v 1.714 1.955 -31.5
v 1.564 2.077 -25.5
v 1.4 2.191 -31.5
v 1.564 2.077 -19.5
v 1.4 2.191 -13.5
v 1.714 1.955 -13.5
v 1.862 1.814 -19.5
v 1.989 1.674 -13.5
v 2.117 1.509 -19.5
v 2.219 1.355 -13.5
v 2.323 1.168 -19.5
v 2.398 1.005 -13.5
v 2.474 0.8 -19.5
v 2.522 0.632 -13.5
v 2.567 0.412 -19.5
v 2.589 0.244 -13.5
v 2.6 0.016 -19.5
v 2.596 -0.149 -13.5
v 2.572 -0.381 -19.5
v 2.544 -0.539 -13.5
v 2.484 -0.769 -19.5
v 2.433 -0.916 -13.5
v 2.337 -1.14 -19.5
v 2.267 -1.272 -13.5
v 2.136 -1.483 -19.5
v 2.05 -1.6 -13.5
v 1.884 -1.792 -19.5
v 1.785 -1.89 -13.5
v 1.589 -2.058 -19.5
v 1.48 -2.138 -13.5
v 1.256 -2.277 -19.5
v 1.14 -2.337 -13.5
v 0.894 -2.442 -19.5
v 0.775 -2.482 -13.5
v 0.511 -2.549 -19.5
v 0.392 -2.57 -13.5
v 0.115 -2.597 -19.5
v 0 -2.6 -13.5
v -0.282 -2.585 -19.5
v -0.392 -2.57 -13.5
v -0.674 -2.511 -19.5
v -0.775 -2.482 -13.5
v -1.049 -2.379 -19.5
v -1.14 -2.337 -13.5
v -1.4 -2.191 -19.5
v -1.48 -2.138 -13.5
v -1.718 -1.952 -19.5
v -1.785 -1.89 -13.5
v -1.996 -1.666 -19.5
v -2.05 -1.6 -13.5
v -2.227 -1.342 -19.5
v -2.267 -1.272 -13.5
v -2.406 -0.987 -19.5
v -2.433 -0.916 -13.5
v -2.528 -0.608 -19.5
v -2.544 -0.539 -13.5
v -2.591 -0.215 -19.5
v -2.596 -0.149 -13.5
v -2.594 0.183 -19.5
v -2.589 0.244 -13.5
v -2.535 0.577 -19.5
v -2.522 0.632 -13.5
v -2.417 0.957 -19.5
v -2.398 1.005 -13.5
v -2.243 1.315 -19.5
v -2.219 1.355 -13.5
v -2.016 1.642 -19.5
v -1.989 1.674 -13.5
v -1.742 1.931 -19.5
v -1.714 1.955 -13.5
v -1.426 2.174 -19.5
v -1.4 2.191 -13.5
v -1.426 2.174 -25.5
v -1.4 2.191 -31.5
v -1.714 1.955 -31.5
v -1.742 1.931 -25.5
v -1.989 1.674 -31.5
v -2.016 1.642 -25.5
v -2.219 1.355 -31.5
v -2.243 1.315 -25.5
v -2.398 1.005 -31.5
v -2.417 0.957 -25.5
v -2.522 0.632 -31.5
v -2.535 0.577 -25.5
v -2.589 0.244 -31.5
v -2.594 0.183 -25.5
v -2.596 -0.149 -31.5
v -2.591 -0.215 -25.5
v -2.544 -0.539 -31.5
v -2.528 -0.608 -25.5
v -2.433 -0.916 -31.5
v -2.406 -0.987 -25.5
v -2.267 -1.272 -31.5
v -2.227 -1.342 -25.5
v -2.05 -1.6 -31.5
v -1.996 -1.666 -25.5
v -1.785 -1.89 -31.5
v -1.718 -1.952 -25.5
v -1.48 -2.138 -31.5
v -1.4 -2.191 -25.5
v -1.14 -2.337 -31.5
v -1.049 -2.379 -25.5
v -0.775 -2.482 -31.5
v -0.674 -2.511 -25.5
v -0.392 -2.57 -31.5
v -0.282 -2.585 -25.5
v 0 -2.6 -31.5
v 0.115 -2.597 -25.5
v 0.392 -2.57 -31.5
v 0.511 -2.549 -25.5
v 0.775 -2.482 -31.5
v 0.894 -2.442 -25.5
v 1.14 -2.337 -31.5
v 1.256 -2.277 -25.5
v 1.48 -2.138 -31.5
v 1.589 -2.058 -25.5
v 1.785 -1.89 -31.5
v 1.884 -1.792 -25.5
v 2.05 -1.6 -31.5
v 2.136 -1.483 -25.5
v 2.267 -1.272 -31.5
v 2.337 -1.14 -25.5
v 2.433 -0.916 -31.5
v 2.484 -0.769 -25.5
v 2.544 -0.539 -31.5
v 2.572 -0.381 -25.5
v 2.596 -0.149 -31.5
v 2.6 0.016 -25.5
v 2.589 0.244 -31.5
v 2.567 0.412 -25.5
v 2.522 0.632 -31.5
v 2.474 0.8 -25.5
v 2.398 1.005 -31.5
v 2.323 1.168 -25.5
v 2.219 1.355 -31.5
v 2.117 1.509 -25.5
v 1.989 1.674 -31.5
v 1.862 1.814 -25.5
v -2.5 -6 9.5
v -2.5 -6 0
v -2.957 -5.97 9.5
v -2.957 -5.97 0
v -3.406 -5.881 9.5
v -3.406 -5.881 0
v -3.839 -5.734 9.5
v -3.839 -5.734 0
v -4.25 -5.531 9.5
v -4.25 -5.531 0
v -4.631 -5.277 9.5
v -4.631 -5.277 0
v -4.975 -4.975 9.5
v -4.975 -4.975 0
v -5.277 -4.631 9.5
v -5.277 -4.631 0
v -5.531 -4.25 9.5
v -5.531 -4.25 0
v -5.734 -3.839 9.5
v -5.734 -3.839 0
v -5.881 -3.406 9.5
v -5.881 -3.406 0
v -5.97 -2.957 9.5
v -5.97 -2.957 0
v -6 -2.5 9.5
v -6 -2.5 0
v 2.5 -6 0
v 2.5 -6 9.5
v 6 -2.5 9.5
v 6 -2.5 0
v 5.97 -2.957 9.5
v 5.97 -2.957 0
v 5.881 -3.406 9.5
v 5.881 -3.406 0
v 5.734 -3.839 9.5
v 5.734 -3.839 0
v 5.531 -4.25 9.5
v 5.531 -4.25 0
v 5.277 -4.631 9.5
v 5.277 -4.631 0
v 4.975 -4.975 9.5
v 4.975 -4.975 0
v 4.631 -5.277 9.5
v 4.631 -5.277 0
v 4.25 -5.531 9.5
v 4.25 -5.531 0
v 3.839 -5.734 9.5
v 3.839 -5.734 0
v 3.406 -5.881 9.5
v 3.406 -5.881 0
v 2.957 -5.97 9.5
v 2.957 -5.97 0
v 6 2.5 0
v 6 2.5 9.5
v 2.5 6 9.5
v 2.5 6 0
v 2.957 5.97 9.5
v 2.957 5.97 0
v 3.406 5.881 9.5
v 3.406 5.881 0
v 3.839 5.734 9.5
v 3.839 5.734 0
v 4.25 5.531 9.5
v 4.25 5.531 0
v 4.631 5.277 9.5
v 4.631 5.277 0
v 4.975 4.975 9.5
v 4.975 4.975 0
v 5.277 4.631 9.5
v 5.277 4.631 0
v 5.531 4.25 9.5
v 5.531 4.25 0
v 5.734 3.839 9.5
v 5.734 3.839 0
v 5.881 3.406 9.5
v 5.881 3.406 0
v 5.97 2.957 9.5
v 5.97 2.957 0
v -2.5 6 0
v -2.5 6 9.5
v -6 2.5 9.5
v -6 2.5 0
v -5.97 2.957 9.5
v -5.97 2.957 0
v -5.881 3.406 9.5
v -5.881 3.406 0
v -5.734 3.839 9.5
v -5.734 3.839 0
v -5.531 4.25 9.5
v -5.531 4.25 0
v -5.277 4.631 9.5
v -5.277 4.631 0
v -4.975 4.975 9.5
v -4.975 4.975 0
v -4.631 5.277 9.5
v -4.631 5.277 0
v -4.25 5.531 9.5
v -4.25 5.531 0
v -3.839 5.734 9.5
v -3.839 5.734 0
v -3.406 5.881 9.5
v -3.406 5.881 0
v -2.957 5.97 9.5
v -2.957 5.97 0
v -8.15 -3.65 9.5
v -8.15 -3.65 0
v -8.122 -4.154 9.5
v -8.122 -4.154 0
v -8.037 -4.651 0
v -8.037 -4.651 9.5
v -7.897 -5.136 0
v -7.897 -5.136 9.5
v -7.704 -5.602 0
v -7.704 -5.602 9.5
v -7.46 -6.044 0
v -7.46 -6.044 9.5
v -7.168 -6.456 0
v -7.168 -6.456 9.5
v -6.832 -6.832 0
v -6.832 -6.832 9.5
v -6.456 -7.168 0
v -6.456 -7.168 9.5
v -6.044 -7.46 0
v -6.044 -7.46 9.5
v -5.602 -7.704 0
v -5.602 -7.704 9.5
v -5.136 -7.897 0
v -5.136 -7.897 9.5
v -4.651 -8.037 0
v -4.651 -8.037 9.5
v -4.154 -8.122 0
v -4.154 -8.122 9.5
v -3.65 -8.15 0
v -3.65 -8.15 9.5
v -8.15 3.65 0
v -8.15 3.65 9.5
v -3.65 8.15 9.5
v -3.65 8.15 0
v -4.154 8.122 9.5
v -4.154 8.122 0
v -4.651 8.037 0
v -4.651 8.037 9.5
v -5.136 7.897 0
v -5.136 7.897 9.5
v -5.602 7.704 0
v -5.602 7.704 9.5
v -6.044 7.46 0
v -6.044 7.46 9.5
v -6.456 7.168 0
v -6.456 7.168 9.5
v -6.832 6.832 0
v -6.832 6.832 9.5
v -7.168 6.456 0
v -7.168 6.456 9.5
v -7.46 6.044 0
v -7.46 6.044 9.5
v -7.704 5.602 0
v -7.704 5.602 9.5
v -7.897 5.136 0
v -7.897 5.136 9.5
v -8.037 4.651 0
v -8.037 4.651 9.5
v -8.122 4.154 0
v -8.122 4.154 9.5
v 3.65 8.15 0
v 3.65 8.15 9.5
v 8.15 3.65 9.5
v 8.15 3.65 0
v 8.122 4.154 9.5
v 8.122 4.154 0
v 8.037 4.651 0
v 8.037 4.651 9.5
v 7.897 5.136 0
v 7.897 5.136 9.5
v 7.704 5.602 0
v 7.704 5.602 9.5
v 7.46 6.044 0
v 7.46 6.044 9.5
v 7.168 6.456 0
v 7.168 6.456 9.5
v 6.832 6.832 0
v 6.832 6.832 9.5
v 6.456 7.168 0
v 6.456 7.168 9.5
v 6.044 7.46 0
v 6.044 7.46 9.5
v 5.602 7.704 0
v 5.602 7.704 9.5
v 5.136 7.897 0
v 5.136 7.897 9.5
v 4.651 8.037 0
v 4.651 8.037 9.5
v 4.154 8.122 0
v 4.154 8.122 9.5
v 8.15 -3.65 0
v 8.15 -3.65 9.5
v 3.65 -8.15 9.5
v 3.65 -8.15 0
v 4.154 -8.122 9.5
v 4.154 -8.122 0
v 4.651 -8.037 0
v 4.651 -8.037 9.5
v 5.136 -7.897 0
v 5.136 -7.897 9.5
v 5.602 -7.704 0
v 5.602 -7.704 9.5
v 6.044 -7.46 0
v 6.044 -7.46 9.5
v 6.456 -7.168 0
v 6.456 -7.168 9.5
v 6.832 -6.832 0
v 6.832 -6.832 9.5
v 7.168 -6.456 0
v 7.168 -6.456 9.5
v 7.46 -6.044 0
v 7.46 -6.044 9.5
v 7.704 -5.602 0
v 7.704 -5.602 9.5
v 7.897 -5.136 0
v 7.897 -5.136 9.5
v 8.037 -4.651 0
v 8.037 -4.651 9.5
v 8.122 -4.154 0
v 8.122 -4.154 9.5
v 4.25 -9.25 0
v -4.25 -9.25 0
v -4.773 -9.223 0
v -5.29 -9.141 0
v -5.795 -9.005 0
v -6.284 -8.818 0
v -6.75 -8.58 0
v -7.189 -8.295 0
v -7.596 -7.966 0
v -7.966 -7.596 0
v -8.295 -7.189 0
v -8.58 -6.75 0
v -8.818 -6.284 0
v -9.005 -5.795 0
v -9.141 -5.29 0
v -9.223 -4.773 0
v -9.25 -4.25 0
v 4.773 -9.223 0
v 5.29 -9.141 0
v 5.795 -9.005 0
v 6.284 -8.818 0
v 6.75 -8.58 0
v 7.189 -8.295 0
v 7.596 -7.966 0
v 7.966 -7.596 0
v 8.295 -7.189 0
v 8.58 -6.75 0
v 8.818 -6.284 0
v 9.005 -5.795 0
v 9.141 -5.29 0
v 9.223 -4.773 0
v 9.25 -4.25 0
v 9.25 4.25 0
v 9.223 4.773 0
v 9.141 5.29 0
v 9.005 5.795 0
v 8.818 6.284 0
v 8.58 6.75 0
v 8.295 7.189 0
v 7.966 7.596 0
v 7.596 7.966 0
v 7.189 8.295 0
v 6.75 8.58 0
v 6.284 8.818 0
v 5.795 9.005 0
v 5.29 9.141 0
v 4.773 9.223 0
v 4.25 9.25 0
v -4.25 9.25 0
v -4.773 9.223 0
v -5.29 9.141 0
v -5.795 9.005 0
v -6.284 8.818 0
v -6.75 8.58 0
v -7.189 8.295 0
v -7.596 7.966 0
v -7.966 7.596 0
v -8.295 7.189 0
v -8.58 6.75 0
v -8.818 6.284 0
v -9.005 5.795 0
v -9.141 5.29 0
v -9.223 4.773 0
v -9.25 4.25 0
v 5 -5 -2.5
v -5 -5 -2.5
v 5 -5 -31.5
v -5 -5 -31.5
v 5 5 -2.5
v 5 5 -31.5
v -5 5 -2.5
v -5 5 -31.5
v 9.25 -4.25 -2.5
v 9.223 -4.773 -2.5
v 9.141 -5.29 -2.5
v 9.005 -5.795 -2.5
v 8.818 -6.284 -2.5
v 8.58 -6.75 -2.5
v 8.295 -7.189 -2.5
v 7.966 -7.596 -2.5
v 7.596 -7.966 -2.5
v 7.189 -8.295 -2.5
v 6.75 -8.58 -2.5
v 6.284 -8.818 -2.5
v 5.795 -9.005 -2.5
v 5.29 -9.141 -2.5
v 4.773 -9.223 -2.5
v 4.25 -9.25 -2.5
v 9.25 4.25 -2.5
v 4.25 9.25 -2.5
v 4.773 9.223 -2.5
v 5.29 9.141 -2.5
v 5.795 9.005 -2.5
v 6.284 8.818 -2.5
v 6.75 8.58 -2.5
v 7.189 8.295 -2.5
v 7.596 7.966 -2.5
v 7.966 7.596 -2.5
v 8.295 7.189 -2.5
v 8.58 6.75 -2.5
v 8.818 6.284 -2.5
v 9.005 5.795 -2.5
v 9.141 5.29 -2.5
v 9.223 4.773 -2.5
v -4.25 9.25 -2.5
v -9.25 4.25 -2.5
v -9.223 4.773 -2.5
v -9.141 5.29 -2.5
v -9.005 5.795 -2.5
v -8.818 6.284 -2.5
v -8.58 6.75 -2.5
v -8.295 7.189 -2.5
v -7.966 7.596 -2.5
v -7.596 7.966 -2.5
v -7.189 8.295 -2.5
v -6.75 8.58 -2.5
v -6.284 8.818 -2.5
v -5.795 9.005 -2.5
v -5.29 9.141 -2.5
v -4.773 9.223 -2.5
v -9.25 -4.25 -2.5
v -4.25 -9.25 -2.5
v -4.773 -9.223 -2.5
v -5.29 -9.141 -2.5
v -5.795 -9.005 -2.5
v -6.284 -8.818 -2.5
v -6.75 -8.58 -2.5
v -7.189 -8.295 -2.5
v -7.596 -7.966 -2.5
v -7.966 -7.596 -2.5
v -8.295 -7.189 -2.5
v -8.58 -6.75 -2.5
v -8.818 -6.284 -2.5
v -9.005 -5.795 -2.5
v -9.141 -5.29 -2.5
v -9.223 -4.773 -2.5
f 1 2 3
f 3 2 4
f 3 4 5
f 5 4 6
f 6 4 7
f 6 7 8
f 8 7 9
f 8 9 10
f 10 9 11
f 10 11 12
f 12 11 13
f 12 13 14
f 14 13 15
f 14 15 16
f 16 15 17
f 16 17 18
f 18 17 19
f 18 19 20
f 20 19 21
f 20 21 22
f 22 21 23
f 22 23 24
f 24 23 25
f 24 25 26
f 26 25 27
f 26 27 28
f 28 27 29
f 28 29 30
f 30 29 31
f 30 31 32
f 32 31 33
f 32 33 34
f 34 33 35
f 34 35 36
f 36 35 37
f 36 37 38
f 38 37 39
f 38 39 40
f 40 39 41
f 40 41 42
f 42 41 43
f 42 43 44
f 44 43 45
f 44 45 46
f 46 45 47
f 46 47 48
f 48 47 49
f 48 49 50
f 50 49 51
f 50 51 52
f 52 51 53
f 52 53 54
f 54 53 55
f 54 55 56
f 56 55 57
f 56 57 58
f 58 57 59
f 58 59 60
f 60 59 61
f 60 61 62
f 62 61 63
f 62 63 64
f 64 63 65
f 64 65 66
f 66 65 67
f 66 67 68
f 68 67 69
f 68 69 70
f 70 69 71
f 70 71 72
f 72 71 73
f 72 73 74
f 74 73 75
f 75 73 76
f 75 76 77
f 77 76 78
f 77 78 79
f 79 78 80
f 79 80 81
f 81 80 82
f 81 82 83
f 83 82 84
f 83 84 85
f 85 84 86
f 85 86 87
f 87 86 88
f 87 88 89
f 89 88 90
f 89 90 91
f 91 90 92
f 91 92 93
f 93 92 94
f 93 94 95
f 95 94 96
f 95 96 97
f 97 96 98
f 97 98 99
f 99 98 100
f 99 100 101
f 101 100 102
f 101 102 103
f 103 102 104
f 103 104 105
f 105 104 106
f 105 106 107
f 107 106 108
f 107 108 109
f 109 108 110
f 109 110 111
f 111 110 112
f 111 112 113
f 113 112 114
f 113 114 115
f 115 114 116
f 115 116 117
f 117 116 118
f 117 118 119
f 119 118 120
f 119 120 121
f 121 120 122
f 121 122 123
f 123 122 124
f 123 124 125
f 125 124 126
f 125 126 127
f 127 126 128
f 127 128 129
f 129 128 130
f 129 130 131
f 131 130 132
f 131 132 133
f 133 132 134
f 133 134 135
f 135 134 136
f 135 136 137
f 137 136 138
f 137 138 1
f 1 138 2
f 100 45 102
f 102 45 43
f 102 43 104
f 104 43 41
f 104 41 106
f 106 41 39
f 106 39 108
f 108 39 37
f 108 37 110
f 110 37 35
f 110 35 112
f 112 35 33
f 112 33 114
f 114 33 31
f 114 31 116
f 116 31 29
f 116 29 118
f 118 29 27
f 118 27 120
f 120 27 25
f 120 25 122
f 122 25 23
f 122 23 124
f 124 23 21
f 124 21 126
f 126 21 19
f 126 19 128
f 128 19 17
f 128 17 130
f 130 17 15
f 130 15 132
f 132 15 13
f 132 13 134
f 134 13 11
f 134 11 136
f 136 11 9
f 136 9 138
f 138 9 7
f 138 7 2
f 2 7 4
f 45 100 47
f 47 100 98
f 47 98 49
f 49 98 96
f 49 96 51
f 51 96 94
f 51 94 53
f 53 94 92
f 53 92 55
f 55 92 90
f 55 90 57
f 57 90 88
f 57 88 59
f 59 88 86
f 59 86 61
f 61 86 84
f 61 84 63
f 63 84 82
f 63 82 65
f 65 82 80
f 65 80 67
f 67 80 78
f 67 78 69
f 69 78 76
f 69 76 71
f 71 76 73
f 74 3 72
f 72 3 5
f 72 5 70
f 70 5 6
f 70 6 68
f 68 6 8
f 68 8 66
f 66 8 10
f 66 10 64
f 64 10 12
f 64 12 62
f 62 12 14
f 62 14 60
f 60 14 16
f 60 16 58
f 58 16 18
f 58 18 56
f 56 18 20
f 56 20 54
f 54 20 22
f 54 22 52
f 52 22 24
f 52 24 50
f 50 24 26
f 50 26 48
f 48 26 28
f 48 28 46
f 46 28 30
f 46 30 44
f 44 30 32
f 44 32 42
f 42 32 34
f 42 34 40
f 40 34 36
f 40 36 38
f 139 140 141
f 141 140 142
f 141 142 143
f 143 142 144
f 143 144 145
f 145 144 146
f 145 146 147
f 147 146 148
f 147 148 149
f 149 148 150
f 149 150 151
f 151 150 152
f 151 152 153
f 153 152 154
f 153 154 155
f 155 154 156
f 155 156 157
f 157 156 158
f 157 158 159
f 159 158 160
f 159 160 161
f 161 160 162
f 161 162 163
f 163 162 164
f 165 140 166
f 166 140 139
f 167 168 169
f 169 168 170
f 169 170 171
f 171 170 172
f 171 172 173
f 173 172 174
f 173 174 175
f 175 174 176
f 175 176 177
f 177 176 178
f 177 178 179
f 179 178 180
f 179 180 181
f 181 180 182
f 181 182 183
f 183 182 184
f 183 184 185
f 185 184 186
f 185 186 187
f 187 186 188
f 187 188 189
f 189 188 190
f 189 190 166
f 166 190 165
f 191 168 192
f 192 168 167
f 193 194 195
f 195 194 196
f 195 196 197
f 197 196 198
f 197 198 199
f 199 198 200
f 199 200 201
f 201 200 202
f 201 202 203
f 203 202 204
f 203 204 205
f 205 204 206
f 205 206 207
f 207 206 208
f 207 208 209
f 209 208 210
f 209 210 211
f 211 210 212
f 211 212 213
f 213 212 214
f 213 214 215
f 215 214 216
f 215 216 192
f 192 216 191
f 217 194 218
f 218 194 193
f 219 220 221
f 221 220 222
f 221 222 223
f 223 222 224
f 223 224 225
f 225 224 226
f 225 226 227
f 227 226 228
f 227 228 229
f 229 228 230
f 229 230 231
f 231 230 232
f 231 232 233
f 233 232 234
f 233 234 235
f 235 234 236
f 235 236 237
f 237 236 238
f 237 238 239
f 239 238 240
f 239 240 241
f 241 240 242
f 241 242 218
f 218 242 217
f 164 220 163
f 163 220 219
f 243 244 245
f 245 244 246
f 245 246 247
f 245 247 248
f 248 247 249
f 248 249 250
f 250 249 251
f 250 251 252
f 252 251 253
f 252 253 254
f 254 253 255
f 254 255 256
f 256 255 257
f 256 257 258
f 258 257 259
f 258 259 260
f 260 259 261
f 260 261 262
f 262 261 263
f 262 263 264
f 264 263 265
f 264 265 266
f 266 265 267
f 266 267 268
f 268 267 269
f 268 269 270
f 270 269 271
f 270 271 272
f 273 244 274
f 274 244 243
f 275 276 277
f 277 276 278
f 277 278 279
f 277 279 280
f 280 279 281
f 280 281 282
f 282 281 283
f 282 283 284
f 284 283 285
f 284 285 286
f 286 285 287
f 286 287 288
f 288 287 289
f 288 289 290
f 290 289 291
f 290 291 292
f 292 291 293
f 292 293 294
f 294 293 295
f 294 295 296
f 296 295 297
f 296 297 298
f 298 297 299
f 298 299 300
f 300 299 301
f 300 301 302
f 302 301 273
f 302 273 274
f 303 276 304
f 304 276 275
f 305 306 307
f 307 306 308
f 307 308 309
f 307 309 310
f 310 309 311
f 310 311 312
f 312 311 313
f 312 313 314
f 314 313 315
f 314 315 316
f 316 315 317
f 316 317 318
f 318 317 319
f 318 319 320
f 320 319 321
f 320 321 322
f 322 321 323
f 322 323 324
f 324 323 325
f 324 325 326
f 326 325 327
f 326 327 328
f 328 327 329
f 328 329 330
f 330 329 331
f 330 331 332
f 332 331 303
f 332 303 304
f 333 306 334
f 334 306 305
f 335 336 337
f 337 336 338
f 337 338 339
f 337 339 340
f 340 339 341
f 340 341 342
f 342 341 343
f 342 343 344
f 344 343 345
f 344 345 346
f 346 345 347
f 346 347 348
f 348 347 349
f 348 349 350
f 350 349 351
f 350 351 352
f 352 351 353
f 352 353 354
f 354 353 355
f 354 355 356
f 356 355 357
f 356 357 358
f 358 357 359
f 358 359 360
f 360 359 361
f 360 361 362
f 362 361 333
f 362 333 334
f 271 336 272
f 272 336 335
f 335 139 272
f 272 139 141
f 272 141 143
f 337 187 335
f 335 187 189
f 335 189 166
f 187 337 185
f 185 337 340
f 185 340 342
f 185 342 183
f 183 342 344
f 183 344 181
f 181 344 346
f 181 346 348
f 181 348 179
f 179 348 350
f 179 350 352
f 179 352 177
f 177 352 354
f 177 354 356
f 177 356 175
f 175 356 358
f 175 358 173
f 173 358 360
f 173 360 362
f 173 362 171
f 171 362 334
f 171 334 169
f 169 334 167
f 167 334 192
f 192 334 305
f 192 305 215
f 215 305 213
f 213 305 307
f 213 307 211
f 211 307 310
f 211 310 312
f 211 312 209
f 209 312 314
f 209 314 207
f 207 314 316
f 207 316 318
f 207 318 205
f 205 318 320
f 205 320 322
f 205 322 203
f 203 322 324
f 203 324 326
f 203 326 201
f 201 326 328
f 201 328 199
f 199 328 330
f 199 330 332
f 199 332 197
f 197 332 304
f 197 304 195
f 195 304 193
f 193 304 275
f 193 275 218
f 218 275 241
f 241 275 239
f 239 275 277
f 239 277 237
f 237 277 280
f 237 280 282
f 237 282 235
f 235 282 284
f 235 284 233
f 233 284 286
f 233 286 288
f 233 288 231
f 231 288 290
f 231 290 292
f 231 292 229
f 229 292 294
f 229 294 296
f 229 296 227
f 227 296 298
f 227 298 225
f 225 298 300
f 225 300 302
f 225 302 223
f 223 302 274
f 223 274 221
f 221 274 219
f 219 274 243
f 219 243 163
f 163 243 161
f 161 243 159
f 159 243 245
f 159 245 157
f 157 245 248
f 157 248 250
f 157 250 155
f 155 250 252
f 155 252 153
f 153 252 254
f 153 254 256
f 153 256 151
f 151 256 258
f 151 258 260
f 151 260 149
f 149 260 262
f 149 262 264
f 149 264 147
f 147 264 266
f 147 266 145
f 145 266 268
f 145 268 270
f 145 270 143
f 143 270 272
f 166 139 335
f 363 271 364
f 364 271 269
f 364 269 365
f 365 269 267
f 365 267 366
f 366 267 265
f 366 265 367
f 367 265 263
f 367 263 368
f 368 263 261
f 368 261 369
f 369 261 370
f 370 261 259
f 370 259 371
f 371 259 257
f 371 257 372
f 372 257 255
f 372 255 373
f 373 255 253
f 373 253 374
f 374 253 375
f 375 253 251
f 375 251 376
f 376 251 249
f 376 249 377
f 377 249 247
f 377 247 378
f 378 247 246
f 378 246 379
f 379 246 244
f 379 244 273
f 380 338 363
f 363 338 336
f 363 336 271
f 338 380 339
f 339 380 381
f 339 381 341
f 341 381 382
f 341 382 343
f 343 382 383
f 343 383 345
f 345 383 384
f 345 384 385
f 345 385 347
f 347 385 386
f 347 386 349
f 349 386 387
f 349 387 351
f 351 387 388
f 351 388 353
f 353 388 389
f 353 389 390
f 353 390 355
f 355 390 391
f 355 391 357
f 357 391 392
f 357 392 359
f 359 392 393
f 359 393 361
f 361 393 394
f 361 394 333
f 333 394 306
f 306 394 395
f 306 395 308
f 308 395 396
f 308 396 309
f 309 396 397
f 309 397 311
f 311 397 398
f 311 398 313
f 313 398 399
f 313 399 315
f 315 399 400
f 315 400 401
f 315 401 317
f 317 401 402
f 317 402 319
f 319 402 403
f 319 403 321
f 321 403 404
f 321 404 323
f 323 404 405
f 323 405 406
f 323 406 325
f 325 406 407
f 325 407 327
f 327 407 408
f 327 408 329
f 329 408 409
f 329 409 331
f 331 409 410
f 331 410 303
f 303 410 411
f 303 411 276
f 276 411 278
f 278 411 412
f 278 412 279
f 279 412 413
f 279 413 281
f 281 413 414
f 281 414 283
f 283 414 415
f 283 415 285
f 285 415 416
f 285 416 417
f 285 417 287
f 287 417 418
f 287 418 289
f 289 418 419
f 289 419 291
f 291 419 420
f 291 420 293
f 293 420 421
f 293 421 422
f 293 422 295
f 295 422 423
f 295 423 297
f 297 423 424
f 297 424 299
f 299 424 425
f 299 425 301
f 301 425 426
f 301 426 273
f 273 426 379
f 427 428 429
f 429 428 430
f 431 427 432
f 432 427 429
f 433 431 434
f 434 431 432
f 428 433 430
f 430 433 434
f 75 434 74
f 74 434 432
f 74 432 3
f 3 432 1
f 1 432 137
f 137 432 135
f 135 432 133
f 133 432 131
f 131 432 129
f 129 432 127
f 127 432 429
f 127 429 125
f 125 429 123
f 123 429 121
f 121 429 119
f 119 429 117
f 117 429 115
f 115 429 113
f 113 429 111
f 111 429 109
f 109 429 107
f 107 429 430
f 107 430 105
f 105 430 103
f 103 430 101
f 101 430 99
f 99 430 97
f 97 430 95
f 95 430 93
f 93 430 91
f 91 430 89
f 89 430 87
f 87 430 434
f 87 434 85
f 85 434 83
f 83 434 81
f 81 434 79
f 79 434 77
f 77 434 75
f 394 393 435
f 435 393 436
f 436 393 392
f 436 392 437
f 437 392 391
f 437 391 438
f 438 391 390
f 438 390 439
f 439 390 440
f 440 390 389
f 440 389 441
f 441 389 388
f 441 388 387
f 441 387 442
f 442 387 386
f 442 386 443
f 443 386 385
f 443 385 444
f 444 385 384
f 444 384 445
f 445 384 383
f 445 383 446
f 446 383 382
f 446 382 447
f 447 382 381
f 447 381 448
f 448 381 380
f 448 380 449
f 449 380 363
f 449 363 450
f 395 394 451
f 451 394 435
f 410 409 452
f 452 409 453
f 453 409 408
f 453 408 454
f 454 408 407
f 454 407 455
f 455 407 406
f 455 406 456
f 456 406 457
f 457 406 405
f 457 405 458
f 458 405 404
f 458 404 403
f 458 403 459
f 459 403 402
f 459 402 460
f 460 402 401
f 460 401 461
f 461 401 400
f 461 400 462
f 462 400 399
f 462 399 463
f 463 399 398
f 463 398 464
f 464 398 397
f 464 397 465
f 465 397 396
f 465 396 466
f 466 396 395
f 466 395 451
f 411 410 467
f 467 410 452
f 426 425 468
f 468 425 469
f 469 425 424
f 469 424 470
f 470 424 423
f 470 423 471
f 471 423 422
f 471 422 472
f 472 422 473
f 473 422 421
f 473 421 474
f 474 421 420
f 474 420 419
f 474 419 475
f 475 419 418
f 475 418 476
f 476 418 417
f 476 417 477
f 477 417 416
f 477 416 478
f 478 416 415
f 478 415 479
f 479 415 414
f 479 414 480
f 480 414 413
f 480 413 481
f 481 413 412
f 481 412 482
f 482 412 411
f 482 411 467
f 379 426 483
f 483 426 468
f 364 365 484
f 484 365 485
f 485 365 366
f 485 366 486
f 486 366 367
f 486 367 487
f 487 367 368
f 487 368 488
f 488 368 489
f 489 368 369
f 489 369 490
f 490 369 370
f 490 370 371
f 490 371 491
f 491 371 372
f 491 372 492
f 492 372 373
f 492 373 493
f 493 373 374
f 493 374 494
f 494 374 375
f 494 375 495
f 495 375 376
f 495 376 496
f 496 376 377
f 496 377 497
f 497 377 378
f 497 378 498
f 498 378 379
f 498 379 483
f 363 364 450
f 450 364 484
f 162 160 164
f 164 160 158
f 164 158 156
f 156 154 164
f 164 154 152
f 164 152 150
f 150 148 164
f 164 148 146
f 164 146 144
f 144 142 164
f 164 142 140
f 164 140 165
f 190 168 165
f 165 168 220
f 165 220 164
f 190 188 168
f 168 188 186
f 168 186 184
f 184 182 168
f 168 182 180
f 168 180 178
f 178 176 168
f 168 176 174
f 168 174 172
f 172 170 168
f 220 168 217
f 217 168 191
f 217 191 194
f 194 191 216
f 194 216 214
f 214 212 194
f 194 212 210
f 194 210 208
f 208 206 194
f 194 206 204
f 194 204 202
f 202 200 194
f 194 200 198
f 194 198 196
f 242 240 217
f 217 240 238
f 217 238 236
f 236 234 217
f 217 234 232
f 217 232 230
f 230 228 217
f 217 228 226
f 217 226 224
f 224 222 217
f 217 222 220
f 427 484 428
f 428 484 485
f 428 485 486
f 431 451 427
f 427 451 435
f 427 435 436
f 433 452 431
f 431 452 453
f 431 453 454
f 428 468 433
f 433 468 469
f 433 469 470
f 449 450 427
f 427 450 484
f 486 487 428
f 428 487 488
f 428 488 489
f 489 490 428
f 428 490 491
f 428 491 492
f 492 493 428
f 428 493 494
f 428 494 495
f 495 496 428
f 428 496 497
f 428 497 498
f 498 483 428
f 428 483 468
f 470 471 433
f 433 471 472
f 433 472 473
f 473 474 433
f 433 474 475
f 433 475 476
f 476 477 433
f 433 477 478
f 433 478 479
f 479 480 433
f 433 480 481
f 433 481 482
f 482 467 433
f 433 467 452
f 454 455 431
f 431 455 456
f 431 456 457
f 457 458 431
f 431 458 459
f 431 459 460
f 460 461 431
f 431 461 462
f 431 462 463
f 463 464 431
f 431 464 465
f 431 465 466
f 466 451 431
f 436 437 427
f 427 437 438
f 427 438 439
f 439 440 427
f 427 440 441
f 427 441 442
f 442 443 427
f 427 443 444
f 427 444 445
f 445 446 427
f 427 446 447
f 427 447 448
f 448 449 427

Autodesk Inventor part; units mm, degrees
ref_plane "YZ Plane" through (0, 0, 0) normal (1, 0, 0) x (0, 1, 0)
ref_plane "XZ Plane" through (0, 0, 0) normal (0, 1, 0) x (-1, 0, 0)
ref_plane "XY Plane" through (0, 0, 0) normal (0, 0, 1) x (1, 0, 0)
sketch "Boceto1" plane through (0, 0, 0) normal (0, 0, 1) x (1, 0, 0)
  line L0 (-4.25, 9.25) -> (4.25, 9.25)
  line L1 (9.25, 4.25) -> (9.25, -4.25)
  line L2 (4.25, -9.25) -> (-4.25, -9.25)
  line L3 (-9.25, -4.25) -> (-9.25, 4.25)
  arc A0 (-4.25, 9.25) -> (-9.25, 4.25) centre (-4.25, 4.25) ccw
  arc A1 (-9.25, -4.25) -> (-4.25, -9.25) centre (-4.25, -4.25) ccw
  arc A2 (4.25, -9.25) -> (9.25, -4.25) centre (4.25, -4.25) ccw
  arc A3 (9.25, 4.25) -> (4.25, 9.25) centre (4.25, 4.25) ccw
extrude "Extrusión1" add sketch "Boceto1" against normal blind 2.5
sketch "Boceto3" plane through (0, 0, -2.5) normal (0, 0, -1) x (-1, 0, 0)
  line L0 (-5, -5) -> (5, -5)
  line L1 (5, -5) -> (5, 5)
  line L2 (5, 5) -> (-5, 5)
  line L3 (-5, 5) -> (-5, -5)
extrude "Extrusión2" add sketch "Boceto3" along normal blind 29
sketch "Boceto4" plane through (0, 0, 0) normal (0, 0, 1) x (1, 0, 0)
  line L0 (-3.65, 8.15) -> (3.65, 8.15)
  line L1 (8.15, 3.65) -> (8.15, -3.65)
  line L2 (3.65, -8.15) -> (-3.65, -8.15)
  line L3 (-8.15, -3.65) -> (-8.15, 3.65)
  arc A0 (3.65, -8.15) -> (8.15, -3.65) centre (3.65, -3.65) ccw
  arc A1 (-8.15, -3.65) -> (-3.65, -8.15) centre (-3.65, -3.65) ccw
  arc A2 (-3.65, 8.15) -> (-8.15, 3.65) centre (-3.65, 3.65) ccw
  arc A3 (8.15, 3.65) -> (3.65, 8.15) centre (3.65, 3.65) ccw
  line L4 (-2.5, 6) -> (2.5, 6)
  line L5 (6, 2.5) -> (6, -2.5)
  line L6 (2.5, -6) -> (-2.5, -6)
  line L7 (-6, -2.5) -> (-6, 2.5)
  arc A4 (6, 2.5) -> (2.5, 6) centre (2.5, 2.5) ccw
  arc A5 (2.5, -6) -> (6, -2.5) centre (2.5, -2.5) ccw
  arc A6 (-6, -2.5) -> (-2.5, -6) centre (-2.5, -2.5) ccw
  arc A7 (-2.5, 6) -> (-6, 2.5) centre (-2.5, 2.5) ccw
extrude "Extrusión3" add sketch "Boceto4" along normal blind 9.5
sketch "Boceto5" plane through (0, 0, -31.5) normal (0, 0, -1) x (-1, 0, 0)
  arc A0 (-1.4, 2.1909) -> (1.4, 2.1909) centre (0, 0) ccw
  line L0 (1.4, 2.1909) -> (-1.4, 2.1909)
  dimension "d36" = 5.2
  dimension "d37" = 2.8
extrude "Extrusión4" cut sketch "Boceto5" against normal blind 18
properties part number "_3DPrint"
